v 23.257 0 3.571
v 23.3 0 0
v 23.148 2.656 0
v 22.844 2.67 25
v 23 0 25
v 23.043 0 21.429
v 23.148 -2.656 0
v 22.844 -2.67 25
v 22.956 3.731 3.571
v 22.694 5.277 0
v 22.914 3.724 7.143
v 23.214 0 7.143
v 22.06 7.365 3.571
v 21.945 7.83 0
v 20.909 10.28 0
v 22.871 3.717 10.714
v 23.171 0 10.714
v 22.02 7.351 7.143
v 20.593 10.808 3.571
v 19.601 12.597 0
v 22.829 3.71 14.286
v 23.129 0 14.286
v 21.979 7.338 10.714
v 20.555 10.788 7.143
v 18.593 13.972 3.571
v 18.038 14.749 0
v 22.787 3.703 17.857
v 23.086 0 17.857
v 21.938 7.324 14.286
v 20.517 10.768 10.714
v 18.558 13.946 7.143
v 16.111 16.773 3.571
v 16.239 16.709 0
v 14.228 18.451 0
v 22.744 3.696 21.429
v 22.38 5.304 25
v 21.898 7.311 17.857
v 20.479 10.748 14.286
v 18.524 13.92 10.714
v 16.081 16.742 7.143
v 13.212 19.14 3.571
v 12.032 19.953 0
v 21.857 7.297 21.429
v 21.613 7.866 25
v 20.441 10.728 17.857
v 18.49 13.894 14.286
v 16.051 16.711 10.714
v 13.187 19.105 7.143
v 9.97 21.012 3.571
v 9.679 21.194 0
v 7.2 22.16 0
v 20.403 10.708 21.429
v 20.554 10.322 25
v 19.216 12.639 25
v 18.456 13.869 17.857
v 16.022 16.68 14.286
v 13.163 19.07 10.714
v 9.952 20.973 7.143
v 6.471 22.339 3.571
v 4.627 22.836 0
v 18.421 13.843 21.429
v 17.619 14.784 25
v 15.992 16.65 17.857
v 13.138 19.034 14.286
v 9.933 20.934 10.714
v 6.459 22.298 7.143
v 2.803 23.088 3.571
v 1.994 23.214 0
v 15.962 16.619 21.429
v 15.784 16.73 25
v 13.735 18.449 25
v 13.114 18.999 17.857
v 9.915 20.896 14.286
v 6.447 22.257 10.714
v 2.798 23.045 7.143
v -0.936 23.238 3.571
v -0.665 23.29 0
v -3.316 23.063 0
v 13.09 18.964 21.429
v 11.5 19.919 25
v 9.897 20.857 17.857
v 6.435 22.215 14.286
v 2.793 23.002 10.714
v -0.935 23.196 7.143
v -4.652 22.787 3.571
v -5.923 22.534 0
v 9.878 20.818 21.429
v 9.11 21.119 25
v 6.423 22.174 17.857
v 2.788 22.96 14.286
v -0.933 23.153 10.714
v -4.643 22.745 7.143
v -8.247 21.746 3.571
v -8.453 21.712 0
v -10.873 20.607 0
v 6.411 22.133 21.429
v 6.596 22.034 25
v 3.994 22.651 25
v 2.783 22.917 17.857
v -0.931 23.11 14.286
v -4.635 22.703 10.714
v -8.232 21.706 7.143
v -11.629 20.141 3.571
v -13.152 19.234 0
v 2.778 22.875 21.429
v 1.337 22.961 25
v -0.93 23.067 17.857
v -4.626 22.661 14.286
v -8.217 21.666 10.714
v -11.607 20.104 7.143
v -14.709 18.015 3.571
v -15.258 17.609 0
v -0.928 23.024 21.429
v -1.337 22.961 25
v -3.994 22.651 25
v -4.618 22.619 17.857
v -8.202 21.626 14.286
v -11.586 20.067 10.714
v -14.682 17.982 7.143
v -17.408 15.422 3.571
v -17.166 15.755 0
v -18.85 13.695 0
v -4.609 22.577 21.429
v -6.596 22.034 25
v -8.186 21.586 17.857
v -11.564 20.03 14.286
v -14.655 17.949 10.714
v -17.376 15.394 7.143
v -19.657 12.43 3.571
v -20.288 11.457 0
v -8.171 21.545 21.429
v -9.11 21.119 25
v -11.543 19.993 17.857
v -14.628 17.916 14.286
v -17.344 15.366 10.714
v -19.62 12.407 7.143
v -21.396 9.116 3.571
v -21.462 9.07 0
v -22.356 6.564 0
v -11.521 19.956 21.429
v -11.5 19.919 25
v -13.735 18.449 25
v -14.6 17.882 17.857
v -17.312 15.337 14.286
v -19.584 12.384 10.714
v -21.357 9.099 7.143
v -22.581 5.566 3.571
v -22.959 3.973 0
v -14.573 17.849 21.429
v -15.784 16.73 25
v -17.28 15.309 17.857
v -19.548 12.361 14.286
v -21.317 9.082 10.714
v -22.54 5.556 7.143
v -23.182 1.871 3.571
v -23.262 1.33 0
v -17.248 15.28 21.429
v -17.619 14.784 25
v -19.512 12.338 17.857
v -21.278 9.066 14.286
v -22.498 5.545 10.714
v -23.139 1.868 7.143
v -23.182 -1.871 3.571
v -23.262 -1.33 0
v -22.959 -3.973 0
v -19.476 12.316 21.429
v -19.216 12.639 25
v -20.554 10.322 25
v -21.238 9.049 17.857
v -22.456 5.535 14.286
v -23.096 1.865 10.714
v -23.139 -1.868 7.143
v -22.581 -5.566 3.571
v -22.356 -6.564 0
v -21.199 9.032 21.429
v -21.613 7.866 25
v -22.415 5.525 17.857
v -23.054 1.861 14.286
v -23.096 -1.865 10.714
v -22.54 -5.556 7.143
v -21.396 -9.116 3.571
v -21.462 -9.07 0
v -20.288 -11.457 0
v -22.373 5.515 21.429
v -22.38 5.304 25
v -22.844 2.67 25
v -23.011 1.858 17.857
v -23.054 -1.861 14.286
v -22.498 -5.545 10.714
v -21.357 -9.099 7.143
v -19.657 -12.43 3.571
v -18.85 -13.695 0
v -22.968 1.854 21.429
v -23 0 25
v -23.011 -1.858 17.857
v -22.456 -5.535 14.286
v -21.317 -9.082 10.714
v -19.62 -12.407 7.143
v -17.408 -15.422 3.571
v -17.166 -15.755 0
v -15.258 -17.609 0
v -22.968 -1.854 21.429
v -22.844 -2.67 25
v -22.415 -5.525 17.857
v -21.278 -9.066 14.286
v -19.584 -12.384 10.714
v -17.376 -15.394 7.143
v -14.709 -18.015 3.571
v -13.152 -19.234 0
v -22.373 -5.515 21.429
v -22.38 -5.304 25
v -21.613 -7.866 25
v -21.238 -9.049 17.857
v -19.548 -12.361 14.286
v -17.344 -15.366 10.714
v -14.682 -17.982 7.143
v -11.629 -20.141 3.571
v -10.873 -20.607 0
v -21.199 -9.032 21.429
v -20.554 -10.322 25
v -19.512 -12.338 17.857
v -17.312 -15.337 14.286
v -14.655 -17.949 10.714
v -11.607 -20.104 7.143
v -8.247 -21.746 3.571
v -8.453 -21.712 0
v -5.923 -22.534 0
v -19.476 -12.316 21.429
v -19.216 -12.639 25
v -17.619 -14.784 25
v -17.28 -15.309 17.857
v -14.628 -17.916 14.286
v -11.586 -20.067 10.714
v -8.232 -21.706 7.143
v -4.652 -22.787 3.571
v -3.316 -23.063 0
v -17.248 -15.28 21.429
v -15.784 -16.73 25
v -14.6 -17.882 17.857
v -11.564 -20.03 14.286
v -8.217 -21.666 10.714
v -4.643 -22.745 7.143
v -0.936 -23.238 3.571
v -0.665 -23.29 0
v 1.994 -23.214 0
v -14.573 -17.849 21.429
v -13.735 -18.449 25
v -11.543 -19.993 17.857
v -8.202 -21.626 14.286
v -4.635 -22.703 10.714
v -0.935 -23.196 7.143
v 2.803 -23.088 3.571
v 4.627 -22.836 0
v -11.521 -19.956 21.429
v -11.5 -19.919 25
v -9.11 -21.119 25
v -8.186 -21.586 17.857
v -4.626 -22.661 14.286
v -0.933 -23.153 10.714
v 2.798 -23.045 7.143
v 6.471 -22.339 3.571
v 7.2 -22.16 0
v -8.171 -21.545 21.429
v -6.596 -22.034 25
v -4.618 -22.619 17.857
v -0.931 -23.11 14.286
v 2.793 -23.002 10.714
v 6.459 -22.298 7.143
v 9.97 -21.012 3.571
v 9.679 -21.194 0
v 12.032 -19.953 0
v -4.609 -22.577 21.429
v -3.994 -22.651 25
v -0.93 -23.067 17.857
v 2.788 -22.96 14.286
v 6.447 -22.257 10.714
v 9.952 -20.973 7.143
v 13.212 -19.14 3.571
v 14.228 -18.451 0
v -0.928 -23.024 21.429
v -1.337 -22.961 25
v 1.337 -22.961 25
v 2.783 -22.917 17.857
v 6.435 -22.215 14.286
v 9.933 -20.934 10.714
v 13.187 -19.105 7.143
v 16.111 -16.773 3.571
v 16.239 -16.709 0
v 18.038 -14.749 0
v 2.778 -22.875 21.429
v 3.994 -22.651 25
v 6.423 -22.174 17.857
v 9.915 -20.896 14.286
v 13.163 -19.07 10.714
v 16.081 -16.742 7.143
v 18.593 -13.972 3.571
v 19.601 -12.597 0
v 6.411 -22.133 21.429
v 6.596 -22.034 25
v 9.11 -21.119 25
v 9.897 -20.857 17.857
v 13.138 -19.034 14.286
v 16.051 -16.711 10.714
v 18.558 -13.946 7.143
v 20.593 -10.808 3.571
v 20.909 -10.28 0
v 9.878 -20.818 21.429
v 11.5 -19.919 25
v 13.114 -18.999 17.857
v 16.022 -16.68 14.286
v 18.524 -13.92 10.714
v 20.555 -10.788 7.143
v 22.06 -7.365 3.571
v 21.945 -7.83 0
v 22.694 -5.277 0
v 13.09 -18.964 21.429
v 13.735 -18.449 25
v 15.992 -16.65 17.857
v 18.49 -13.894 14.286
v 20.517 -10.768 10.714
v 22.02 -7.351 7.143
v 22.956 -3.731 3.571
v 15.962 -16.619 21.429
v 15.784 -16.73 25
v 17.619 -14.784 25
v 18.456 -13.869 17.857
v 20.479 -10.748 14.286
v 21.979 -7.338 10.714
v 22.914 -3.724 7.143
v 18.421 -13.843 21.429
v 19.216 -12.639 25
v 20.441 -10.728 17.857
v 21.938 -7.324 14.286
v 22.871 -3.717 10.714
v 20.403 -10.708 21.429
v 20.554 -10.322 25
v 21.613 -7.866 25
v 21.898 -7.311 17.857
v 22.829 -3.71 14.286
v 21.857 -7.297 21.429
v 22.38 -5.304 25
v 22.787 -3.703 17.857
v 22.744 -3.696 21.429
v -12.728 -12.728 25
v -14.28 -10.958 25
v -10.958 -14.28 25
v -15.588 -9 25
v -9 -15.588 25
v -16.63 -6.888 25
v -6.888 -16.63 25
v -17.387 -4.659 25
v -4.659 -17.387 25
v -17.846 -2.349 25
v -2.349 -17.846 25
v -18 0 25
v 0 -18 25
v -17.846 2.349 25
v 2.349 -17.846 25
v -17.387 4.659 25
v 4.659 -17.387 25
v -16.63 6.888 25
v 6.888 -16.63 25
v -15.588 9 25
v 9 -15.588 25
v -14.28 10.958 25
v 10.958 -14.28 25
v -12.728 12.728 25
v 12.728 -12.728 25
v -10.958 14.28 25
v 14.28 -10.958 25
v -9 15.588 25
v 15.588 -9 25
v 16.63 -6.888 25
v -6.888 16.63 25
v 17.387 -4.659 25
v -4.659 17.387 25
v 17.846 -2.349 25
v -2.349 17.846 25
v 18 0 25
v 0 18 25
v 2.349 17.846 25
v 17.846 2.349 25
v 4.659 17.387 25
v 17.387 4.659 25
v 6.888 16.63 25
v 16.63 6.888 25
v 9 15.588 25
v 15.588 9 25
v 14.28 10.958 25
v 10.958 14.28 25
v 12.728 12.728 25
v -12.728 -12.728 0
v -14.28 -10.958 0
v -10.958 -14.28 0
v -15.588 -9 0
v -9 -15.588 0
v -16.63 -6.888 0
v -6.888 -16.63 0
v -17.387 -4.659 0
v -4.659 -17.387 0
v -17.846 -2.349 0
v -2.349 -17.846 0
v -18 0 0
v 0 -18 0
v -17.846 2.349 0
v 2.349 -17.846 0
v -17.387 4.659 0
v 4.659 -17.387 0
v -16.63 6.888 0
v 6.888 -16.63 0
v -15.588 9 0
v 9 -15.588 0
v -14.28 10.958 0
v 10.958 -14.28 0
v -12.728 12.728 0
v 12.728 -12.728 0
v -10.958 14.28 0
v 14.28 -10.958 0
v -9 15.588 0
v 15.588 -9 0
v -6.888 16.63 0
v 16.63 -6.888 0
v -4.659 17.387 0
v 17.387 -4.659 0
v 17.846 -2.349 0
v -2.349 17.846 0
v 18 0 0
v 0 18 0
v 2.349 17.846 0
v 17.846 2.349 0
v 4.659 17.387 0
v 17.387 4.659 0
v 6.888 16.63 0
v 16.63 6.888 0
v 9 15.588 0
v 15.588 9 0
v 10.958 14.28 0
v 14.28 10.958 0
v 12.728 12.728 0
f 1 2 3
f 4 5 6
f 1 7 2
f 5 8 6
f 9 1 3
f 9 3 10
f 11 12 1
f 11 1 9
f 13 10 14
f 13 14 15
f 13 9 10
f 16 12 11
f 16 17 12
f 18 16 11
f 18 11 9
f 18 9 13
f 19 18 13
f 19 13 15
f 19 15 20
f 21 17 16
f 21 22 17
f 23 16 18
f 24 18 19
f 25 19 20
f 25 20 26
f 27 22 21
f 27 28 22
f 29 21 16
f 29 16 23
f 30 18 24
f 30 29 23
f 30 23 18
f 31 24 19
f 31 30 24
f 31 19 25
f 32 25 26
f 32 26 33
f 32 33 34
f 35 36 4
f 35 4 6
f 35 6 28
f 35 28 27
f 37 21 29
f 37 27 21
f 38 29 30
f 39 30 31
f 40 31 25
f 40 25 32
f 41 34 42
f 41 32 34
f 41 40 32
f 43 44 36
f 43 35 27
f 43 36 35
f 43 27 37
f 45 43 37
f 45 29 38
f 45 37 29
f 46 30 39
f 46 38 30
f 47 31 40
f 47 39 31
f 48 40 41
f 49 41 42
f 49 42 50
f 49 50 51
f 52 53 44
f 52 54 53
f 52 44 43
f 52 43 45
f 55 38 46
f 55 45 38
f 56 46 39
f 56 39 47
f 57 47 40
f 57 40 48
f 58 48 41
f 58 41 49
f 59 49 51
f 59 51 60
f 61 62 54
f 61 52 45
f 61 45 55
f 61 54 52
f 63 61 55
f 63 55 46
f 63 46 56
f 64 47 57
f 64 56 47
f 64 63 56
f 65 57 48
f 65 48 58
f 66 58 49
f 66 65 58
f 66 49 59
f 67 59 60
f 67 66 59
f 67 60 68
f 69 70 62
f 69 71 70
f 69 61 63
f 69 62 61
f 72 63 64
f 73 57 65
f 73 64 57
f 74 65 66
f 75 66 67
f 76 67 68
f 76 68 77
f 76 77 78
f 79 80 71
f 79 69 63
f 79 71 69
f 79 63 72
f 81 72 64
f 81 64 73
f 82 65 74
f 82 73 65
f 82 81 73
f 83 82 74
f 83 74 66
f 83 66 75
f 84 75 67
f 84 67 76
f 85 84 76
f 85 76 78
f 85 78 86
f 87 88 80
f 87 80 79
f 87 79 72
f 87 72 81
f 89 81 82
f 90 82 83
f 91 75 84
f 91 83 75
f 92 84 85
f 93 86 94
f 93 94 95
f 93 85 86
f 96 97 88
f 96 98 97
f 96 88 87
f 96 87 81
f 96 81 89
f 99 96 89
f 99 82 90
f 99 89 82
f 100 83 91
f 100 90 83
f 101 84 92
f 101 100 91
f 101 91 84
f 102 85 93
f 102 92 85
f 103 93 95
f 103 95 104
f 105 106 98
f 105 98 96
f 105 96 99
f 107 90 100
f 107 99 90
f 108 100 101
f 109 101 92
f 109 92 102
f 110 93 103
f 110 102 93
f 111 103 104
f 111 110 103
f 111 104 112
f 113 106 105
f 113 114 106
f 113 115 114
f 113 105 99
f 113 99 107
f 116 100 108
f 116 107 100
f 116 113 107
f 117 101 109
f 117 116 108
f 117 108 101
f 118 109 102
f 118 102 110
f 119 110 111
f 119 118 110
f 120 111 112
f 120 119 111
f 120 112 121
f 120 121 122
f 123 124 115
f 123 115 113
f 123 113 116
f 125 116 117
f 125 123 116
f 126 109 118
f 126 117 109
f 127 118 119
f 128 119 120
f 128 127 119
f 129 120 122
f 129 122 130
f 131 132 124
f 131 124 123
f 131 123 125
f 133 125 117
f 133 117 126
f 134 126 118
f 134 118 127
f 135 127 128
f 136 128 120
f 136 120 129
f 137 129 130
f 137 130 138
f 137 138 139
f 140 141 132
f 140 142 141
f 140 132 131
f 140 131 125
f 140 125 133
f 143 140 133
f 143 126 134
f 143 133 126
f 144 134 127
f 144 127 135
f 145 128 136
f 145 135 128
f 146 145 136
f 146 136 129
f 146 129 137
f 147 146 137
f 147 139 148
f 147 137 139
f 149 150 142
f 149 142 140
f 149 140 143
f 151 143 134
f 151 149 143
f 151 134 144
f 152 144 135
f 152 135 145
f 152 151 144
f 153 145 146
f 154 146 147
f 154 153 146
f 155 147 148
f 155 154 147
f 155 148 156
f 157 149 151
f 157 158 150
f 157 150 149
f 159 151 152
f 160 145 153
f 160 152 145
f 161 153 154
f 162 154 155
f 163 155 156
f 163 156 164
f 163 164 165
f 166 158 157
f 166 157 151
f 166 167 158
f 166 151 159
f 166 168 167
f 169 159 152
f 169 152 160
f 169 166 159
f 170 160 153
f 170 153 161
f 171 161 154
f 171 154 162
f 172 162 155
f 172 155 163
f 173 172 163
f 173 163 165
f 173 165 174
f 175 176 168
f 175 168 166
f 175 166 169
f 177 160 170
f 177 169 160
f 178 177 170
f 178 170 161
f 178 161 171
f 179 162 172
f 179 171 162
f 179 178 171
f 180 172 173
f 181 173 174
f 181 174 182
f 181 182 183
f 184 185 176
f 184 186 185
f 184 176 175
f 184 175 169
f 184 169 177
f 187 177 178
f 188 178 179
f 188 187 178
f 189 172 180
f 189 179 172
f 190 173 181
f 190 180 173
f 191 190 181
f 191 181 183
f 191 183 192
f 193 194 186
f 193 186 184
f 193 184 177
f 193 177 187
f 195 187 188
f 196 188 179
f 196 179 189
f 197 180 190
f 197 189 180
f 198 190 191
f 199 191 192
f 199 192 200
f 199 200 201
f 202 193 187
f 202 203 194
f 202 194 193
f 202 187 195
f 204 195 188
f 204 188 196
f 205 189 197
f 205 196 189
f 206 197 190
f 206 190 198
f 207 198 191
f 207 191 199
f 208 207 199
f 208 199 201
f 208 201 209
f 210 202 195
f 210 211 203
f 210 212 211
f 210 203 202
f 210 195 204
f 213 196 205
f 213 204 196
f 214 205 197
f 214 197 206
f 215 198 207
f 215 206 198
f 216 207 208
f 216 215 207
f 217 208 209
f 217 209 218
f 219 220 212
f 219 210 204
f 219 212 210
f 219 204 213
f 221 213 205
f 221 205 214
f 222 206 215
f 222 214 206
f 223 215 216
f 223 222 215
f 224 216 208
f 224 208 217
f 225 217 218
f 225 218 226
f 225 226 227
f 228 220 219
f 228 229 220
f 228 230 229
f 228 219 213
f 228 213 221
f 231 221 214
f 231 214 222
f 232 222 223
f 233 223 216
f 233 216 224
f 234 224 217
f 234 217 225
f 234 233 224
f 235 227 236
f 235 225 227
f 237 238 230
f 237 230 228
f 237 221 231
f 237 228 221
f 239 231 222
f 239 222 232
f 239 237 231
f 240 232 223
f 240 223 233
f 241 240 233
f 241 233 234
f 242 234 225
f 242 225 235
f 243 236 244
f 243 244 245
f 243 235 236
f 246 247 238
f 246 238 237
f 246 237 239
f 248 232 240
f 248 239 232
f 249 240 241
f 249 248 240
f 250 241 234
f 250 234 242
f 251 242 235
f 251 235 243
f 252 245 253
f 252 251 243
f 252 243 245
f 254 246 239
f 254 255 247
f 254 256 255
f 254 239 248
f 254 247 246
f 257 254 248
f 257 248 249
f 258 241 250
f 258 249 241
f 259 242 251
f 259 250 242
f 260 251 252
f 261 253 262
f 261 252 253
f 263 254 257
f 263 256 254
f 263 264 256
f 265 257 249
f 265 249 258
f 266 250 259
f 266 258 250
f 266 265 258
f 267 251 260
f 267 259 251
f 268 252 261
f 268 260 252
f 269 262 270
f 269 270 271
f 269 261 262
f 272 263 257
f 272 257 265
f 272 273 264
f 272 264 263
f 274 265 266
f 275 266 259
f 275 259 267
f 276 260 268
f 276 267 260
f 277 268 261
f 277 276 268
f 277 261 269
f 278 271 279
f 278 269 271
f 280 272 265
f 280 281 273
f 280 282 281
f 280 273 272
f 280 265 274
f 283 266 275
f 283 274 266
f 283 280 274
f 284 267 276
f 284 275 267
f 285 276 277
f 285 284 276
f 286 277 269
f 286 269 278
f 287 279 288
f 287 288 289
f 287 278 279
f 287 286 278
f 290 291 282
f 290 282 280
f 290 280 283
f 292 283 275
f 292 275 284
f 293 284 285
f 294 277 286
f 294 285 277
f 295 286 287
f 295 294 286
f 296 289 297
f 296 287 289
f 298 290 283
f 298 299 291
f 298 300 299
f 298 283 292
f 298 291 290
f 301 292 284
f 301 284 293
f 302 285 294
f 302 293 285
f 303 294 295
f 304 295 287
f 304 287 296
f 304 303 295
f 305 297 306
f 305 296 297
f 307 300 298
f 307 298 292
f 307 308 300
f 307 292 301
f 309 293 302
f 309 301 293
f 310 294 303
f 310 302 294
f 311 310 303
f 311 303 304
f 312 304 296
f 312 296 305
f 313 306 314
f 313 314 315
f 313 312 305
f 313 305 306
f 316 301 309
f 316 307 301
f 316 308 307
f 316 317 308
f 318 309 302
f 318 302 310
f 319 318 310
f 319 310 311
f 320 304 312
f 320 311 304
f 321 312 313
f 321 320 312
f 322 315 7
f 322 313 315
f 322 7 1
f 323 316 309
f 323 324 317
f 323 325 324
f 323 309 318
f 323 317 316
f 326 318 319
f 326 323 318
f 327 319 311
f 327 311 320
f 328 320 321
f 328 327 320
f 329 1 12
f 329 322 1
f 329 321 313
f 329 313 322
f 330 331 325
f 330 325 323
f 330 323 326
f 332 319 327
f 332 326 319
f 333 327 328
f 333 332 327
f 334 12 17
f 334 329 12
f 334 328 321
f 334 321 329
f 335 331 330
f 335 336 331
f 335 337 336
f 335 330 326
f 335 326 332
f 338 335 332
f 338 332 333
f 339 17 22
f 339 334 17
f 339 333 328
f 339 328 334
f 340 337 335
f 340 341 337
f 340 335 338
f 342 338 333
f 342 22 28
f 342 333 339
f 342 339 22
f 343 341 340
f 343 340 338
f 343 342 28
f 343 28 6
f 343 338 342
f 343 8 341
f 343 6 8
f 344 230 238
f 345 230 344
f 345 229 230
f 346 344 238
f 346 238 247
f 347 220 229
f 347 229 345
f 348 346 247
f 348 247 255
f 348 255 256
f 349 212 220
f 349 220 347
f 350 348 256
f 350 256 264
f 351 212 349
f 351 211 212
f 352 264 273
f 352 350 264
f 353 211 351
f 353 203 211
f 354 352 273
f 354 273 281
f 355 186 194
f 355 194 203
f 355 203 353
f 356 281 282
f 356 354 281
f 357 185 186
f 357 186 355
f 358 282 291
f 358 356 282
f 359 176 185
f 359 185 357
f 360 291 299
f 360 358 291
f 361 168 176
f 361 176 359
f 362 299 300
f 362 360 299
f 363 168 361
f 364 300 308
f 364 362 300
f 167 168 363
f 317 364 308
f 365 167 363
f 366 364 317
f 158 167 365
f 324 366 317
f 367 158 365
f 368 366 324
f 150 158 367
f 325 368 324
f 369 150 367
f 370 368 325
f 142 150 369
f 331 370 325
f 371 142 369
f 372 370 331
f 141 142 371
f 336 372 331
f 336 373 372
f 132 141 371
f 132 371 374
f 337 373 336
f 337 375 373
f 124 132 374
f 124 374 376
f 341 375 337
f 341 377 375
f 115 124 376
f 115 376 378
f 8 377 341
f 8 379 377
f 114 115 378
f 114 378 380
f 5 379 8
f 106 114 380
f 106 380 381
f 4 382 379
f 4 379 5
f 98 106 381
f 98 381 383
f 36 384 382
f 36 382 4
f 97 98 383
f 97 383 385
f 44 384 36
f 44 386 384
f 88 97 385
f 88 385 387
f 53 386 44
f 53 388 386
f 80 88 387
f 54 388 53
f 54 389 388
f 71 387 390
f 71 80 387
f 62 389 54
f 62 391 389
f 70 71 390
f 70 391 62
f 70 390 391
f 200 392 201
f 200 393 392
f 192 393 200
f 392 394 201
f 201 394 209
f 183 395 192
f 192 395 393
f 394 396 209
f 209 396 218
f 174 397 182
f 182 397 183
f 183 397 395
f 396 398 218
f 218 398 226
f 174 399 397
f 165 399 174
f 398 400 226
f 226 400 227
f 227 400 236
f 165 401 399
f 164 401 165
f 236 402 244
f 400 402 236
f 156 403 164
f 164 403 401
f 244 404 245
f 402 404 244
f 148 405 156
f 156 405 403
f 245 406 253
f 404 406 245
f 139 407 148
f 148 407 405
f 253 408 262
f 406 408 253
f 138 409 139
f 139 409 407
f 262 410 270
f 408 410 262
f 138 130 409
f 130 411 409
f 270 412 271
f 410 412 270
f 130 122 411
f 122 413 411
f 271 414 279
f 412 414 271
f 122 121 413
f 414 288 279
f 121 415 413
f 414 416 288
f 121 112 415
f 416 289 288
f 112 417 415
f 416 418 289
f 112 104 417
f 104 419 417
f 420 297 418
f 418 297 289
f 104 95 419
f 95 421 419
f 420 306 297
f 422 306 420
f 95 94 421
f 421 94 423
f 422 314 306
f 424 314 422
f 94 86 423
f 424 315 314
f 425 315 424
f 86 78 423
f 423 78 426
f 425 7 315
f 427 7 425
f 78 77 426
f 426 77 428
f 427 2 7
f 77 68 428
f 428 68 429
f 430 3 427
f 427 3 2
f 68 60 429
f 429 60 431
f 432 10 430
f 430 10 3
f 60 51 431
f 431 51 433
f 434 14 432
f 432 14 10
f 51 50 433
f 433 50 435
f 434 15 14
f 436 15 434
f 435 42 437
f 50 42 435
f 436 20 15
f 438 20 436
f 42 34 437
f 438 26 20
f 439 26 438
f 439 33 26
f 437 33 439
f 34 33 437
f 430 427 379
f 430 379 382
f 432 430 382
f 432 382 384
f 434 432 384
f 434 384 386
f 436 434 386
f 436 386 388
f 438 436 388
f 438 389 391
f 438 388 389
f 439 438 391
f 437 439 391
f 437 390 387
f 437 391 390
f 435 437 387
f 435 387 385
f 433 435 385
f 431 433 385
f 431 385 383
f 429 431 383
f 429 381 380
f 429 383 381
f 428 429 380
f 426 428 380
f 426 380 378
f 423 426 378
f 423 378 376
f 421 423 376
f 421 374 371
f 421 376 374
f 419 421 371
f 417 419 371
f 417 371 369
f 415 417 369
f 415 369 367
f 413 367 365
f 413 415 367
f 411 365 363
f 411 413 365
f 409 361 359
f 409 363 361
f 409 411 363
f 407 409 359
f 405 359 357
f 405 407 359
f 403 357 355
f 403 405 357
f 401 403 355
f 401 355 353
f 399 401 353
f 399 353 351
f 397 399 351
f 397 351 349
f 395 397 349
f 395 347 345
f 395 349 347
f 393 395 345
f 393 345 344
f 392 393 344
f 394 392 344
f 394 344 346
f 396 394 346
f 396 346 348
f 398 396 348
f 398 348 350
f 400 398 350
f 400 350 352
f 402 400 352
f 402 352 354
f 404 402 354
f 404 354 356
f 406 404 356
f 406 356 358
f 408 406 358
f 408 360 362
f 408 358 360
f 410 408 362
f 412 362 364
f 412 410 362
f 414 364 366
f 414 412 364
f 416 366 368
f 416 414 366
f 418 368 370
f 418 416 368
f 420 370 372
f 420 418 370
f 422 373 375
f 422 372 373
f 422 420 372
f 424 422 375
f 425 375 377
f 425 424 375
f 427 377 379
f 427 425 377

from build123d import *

# Parameters (mm, degrees)
CYLINDER_R     = 18
CYLINDER_DEPTH = 30


with BuildPart() as cilindro:
    # Cylinder → Cylinder (new body)
    with BuildSketch(Plane.XY.offset(-3)):
        Circle(CYLINDER_R)
    extrude(amount=CYLINDER_DEPTH)


with BuildPart() as cut:
    # Cone → Cone (revolve)
    with BuildSketch(Plane.XZ):
        Polygon((0, 0), (23.3, 0), (23, 25), (0, 25), align=None)
    revolve(axis=Axis((0, 0, 0), (0, 0, 1)))

    # Cut: cut Cilindro
    add(cilindro.part, mode=Mode.SUBTRACT)


solid = cut.part
